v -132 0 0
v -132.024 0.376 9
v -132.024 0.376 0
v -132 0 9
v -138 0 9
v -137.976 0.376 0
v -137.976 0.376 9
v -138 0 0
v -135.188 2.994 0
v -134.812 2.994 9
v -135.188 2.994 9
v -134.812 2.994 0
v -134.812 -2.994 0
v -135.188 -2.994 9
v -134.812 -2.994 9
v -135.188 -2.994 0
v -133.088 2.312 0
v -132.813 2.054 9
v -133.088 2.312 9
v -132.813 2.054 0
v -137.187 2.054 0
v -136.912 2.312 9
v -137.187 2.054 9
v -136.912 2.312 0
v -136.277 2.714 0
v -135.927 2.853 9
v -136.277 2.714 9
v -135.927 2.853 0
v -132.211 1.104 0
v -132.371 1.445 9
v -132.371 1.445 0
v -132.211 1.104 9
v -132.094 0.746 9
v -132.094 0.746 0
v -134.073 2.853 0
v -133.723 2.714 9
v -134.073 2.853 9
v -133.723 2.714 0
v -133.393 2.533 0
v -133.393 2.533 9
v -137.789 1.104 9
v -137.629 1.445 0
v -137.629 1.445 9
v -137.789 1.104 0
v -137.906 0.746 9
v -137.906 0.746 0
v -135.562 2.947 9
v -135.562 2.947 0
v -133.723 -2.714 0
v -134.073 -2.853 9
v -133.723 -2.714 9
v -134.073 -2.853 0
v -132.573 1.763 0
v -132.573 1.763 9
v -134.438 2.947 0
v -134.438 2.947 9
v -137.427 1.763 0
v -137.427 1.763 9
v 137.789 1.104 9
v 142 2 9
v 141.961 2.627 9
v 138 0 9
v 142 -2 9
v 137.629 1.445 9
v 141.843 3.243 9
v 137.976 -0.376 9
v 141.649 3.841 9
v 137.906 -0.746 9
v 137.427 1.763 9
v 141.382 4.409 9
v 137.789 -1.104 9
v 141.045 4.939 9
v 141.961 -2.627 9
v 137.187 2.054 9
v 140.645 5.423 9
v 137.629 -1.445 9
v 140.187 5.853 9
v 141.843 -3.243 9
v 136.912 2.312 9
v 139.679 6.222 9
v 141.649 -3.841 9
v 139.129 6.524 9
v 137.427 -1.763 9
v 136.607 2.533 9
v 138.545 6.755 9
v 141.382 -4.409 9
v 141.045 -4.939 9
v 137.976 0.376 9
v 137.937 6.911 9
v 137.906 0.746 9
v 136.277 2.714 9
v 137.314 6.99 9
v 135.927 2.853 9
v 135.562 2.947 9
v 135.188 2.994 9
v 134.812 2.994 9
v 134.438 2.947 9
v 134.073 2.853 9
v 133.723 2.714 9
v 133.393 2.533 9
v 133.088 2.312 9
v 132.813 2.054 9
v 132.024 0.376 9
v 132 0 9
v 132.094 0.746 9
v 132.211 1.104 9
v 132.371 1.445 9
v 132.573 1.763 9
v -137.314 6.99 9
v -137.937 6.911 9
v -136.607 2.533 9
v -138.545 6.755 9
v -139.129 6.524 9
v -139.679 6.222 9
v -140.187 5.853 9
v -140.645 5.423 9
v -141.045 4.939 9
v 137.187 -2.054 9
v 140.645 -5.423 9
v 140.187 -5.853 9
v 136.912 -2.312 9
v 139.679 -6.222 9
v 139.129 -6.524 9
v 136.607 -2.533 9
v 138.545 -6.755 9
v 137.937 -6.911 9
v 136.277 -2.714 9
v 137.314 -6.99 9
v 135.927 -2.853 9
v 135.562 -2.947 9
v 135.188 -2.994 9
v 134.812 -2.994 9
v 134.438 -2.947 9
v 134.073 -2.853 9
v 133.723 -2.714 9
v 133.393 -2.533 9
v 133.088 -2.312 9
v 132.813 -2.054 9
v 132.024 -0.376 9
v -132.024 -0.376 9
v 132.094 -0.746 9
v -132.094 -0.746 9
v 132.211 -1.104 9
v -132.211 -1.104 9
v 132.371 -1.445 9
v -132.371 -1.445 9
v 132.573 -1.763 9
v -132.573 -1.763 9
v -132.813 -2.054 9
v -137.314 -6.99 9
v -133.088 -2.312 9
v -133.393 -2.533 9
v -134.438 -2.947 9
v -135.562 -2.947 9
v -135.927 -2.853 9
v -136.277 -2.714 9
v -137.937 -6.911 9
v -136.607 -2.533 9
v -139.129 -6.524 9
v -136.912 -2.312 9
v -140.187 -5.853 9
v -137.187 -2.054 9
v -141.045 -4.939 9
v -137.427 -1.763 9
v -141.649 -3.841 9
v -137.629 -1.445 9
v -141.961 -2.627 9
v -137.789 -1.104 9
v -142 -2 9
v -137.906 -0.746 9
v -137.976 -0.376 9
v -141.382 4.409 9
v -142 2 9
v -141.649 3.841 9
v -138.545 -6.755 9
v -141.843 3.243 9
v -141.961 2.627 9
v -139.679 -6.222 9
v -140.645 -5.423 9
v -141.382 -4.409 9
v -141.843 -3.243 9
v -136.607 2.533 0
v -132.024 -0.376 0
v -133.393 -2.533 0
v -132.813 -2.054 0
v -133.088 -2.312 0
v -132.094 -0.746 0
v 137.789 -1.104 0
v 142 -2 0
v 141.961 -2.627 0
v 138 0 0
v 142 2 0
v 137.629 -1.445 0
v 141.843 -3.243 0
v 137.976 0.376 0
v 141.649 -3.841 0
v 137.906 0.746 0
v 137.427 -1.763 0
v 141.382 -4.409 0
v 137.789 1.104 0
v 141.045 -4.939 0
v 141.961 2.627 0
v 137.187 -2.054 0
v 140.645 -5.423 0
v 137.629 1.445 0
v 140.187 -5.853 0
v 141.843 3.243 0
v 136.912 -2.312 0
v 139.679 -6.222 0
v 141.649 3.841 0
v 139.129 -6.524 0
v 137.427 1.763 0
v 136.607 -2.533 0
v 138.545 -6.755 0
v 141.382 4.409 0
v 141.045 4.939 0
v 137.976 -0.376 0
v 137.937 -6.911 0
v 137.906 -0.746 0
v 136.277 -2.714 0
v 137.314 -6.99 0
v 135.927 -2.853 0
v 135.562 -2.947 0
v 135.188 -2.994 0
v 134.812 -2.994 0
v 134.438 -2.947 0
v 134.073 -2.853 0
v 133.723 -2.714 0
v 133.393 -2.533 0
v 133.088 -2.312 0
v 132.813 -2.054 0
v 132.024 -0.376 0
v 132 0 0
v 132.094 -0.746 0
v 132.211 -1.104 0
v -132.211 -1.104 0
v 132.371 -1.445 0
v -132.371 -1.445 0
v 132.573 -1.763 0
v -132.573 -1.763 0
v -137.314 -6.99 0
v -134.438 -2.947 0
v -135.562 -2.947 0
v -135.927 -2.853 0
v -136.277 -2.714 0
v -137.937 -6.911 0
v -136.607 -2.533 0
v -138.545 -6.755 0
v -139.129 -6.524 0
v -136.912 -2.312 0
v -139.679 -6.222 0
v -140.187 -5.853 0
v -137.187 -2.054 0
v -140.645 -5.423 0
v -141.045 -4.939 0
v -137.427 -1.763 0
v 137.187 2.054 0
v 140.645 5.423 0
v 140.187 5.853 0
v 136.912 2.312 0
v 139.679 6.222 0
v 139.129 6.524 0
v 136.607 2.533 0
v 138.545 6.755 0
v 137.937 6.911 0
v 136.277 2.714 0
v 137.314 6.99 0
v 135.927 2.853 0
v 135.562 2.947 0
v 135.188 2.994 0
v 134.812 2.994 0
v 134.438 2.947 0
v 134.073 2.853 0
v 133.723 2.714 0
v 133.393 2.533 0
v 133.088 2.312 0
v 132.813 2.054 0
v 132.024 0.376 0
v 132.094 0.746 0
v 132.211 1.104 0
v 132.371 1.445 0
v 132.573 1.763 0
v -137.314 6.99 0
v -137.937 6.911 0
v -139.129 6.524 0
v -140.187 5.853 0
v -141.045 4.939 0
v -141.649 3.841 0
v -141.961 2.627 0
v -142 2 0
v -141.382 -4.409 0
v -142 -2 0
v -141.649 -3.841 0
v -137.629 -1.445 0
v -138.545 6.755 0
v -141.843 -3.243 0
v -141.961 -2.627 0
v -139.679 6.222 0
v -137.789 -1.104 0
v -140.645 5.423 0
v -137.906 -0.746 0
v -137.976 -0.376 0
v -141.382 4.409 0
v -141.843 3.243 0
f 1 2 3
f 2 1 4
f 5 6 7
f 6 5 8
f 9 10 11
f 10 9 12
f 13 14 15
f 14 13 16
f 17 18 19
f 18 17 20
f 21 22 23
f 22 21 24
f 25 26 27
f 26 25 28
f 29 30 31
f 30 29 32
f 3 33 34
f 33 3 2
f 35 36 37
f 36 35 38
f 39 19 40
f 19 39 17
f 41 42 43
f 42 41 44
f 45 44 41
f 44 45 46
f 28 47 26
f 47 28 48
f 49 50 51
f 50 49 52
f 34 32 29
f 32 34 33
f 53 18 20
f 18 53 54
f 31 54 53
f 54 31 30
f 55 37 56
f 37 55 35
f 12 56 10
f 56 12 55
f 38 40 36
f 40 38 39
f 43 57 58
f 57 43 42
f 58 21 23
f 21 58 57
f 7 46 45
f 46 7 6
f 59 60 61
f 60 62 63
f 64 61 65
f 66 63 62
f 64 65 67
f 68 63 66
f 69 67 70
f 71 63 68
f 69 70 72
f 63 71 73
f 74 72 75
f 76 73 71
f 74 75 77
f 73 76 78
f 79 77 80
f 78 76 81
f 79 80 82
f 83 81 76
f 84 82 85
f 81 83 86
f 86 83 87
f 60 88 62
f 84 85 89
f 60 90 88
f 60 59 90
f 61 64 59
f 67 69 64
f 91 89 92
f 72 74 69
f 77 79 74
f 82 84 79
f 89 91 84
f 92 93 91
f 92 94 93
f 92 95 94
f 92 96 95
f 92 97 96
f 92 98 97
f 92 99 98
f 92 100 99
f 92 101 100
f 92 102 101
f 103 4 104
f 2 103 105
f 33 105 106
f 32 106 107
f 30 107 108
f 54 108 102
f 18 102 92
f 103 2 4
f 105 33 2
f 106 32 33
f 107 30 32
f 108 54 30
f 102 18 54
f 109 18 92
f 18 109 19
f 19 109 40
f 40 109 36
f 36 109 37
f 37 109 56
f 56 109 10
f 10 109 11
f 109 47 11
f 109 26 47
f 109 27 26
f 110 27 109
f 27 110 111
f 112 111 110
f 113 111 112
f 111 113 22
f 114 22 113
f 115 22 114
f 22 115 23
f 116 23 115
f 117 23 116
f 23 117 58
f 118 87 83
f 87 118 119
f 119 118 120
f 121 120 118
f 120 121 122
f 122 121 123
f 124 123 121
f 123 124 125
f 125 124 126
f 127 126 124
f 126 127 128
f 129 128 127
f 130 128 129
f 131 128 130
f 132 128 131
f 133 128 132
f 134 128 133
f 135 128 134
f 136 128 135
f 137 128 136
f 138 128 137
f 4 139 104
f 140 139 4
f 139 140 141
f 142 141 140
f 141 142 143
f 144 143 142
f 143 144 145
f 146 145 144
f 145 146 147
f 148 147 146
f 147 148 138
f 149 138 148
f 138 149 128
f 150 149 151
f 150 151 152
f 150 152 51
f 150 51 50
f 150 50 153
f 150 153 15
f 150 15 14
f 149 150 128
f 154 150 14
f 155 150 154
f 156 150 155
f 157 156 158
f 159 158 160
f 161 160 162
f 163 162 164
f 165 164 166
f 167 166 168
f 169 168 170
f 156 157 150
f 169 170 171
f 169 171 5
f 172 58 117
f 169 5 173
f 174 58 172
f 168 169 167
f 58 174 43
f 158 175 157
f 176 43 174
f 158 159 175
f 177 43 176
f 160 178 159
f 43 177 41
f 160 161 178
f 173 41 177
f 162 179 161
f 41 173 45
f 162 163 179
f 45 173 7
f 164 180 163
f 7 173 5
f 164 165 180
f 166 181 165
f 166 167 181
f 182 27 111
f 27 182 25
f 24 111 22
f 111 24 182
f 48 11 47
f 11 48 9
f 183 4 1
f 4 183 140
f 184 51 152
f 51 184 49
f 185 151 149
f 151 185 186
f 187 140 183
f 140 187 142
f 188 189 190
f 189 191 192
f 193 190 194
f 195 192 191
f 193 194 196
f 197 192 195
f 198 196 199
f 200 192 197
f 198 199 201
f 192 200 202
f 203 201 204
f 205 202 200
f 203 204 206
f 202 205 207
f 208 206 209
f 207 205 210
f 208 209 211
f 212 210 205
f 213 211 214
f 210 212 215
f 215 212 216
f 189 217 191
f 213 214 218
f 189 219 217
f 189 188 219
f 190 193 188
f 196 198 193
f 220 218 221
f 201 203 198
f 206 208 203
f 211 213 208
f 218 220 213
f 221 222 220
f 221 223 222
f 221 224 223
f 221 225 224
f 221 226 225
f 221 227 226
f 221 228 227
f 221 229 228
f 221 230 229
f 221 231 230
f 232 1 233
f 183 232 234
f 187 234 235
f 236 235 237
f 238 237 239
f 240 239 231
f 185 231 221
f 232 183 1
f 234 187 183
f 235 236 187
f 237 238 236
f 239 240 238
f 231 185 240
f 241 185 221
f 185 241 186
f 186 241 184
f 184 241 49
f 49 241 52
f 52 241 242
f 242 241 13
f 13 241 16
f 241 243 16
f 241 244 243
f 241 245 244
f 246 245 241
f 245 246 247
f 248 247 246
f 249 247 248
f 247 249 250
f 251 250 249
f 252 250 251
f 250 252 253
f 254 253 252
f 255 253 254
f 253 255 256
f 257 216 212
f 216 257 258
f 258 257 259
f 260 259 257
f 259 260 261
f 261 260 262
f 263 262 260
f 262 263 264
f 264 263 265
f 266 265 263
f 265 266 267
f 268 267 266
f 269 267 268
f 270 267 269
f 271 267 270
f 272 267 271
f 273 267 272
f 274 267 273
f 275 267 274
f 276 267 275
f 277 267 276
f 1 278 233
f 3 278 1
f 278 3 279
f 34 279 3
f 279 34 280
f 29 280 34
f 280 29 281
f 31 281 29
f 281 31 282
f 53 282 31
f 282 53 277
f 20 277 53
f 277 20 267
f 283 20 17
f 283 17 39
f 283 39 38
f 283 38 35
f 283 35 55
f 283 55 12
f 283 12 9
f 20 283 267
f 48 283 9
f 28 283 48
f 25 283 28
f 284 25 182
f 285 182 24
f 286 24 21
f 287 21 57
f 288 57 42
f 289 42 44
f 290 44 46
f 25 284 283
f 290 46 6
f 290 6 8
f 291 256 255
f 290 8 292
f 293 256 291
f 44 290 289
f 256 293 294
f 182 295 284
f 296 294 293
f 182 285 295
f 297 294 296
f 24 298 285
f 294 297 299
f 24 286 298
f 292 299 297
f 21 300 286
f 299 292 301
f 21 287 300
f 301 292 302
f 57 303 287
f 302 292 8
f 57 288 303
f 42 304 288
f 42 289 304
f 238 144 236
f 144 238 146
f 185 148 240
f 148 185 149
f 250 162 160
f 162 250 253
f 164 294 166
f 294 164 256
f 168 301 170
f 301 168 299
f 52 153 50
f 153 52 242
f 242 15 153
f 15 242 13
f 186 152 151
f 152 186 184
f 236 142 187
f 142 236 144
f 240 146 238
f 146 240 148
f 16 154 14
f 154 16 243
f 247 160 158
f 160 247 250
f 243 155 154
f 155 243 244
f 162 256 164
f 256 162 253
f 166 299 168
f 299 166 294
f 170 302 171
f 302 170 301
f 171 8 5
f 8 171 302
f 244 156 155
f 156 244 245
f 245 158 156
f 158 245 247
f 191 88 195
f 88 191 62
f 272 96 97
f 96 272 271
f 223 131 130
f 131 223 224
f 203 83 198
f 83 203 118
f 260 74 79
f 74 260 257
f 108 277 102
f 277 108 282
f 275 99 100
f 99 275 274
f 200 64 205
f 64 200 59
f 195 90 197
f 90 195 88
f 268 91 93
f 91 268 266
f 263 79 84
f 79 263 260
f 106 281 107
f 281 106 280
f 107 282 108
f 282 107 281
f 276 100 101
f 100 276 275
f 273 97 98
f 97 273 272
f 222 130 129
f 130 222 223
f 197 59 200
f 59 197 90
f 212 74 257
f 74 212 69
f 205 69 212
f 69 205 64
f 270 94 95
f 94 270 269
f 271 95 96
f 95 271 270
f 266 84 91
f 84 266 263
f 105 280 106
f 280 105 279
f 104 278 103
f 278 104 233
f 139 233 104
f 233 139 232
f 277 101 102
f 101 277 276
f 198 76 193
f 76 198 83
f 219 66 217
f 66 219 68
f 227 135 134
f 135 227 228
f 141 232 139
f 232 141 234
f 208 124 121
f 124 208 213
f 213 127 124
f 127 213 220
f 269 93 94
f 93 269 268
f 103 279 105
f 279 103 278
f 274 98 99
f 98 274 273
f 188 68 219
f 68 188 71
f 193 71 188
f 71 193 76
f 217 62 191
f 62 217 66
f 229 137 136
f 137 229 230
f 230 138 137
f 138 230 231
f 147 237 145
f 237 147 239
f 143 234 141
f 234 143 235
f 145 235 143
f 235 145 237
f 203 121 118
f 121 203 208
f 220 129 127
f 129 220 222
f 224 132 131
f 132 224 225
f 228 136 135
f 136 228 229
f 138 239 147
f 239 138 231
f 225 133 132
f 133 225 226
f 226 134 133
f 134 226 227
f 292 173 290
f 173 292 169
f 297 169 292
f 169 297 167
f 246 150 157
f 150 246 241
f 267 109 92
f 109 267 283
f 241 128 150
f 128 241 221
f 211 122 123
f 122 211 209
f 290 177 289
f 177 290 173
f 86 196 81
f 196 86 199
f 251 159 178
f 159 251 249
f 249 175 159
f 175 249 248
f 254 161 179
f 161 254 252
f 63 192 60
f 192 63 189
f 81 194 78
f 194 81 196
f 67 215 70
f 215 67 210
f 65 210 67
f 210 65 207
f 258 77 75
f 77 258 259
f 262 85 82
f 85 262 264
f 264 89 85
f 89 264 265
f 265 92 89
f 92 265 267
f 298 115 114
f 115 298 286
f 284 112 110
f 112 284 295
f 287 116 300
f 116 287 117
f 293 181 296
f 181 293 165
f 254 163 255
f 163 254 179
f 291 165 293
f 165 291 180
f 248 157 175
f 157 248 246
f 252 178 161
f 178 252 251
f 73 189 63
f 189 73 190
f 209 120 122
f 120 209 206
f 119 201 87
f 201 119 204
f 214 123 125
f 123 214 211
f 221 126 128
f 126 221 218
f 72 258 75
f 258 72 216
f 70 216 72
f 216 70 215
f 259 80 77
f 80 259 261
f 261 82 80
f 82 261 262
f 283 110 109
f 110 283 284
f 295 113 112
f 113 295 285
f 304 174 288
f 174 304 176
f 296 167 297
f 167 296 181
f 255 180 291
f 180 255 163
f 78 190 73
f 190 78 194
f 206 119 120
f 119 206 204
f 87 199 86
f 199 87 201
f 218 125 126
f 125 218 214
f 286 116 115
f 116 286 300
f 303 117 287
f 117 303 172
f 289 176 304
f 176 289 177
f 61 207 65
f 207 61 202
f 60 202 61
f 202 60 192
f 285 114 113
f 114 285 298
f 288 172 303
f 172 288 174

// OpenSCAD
$fn = 50;


difference() {
	union() {
		hull() {
			translate(v = [-137.0000000000, 2.0000000000, 0]) {
				cylinder(h = 9, r = 5);
			}
			translate(v = [137.0000000000, 2.0000000000, 0]) {
				cylinder(h = 9, r = 5);
			}
			translate(v = [-137.0000000000, -2.0000000000, 0]) {
				cylinder(h = 9, r = 5);
			}
			translate(v = [137.0000000000, -2.0000000000, 0]) {
				cylinder(h = 9, r = 5);
			}
		}
	}
	union() {
		translate(v = [-135.0000000000, 0.0000000000, -100.0000000000]) {
			cylinder(h = 200, r = 3.0000000000);
		}
		translate(v = [-135.0000000000, 0.0000000000, -100.0000000000]) {
			cylinder(h = 200, r = 3.0000000000);
		}
		translate(v = [135.0000000000, 0.0000000000, -100.0000000000]) {
			cylinder(h = 200, r = 3.0000000000);
		}
		translate(v = [135.0000000000, 0.0000000000, -100.0000000000]) {
			cylinder(h = 200, r = 3.0000000000);
		}
	}
}
